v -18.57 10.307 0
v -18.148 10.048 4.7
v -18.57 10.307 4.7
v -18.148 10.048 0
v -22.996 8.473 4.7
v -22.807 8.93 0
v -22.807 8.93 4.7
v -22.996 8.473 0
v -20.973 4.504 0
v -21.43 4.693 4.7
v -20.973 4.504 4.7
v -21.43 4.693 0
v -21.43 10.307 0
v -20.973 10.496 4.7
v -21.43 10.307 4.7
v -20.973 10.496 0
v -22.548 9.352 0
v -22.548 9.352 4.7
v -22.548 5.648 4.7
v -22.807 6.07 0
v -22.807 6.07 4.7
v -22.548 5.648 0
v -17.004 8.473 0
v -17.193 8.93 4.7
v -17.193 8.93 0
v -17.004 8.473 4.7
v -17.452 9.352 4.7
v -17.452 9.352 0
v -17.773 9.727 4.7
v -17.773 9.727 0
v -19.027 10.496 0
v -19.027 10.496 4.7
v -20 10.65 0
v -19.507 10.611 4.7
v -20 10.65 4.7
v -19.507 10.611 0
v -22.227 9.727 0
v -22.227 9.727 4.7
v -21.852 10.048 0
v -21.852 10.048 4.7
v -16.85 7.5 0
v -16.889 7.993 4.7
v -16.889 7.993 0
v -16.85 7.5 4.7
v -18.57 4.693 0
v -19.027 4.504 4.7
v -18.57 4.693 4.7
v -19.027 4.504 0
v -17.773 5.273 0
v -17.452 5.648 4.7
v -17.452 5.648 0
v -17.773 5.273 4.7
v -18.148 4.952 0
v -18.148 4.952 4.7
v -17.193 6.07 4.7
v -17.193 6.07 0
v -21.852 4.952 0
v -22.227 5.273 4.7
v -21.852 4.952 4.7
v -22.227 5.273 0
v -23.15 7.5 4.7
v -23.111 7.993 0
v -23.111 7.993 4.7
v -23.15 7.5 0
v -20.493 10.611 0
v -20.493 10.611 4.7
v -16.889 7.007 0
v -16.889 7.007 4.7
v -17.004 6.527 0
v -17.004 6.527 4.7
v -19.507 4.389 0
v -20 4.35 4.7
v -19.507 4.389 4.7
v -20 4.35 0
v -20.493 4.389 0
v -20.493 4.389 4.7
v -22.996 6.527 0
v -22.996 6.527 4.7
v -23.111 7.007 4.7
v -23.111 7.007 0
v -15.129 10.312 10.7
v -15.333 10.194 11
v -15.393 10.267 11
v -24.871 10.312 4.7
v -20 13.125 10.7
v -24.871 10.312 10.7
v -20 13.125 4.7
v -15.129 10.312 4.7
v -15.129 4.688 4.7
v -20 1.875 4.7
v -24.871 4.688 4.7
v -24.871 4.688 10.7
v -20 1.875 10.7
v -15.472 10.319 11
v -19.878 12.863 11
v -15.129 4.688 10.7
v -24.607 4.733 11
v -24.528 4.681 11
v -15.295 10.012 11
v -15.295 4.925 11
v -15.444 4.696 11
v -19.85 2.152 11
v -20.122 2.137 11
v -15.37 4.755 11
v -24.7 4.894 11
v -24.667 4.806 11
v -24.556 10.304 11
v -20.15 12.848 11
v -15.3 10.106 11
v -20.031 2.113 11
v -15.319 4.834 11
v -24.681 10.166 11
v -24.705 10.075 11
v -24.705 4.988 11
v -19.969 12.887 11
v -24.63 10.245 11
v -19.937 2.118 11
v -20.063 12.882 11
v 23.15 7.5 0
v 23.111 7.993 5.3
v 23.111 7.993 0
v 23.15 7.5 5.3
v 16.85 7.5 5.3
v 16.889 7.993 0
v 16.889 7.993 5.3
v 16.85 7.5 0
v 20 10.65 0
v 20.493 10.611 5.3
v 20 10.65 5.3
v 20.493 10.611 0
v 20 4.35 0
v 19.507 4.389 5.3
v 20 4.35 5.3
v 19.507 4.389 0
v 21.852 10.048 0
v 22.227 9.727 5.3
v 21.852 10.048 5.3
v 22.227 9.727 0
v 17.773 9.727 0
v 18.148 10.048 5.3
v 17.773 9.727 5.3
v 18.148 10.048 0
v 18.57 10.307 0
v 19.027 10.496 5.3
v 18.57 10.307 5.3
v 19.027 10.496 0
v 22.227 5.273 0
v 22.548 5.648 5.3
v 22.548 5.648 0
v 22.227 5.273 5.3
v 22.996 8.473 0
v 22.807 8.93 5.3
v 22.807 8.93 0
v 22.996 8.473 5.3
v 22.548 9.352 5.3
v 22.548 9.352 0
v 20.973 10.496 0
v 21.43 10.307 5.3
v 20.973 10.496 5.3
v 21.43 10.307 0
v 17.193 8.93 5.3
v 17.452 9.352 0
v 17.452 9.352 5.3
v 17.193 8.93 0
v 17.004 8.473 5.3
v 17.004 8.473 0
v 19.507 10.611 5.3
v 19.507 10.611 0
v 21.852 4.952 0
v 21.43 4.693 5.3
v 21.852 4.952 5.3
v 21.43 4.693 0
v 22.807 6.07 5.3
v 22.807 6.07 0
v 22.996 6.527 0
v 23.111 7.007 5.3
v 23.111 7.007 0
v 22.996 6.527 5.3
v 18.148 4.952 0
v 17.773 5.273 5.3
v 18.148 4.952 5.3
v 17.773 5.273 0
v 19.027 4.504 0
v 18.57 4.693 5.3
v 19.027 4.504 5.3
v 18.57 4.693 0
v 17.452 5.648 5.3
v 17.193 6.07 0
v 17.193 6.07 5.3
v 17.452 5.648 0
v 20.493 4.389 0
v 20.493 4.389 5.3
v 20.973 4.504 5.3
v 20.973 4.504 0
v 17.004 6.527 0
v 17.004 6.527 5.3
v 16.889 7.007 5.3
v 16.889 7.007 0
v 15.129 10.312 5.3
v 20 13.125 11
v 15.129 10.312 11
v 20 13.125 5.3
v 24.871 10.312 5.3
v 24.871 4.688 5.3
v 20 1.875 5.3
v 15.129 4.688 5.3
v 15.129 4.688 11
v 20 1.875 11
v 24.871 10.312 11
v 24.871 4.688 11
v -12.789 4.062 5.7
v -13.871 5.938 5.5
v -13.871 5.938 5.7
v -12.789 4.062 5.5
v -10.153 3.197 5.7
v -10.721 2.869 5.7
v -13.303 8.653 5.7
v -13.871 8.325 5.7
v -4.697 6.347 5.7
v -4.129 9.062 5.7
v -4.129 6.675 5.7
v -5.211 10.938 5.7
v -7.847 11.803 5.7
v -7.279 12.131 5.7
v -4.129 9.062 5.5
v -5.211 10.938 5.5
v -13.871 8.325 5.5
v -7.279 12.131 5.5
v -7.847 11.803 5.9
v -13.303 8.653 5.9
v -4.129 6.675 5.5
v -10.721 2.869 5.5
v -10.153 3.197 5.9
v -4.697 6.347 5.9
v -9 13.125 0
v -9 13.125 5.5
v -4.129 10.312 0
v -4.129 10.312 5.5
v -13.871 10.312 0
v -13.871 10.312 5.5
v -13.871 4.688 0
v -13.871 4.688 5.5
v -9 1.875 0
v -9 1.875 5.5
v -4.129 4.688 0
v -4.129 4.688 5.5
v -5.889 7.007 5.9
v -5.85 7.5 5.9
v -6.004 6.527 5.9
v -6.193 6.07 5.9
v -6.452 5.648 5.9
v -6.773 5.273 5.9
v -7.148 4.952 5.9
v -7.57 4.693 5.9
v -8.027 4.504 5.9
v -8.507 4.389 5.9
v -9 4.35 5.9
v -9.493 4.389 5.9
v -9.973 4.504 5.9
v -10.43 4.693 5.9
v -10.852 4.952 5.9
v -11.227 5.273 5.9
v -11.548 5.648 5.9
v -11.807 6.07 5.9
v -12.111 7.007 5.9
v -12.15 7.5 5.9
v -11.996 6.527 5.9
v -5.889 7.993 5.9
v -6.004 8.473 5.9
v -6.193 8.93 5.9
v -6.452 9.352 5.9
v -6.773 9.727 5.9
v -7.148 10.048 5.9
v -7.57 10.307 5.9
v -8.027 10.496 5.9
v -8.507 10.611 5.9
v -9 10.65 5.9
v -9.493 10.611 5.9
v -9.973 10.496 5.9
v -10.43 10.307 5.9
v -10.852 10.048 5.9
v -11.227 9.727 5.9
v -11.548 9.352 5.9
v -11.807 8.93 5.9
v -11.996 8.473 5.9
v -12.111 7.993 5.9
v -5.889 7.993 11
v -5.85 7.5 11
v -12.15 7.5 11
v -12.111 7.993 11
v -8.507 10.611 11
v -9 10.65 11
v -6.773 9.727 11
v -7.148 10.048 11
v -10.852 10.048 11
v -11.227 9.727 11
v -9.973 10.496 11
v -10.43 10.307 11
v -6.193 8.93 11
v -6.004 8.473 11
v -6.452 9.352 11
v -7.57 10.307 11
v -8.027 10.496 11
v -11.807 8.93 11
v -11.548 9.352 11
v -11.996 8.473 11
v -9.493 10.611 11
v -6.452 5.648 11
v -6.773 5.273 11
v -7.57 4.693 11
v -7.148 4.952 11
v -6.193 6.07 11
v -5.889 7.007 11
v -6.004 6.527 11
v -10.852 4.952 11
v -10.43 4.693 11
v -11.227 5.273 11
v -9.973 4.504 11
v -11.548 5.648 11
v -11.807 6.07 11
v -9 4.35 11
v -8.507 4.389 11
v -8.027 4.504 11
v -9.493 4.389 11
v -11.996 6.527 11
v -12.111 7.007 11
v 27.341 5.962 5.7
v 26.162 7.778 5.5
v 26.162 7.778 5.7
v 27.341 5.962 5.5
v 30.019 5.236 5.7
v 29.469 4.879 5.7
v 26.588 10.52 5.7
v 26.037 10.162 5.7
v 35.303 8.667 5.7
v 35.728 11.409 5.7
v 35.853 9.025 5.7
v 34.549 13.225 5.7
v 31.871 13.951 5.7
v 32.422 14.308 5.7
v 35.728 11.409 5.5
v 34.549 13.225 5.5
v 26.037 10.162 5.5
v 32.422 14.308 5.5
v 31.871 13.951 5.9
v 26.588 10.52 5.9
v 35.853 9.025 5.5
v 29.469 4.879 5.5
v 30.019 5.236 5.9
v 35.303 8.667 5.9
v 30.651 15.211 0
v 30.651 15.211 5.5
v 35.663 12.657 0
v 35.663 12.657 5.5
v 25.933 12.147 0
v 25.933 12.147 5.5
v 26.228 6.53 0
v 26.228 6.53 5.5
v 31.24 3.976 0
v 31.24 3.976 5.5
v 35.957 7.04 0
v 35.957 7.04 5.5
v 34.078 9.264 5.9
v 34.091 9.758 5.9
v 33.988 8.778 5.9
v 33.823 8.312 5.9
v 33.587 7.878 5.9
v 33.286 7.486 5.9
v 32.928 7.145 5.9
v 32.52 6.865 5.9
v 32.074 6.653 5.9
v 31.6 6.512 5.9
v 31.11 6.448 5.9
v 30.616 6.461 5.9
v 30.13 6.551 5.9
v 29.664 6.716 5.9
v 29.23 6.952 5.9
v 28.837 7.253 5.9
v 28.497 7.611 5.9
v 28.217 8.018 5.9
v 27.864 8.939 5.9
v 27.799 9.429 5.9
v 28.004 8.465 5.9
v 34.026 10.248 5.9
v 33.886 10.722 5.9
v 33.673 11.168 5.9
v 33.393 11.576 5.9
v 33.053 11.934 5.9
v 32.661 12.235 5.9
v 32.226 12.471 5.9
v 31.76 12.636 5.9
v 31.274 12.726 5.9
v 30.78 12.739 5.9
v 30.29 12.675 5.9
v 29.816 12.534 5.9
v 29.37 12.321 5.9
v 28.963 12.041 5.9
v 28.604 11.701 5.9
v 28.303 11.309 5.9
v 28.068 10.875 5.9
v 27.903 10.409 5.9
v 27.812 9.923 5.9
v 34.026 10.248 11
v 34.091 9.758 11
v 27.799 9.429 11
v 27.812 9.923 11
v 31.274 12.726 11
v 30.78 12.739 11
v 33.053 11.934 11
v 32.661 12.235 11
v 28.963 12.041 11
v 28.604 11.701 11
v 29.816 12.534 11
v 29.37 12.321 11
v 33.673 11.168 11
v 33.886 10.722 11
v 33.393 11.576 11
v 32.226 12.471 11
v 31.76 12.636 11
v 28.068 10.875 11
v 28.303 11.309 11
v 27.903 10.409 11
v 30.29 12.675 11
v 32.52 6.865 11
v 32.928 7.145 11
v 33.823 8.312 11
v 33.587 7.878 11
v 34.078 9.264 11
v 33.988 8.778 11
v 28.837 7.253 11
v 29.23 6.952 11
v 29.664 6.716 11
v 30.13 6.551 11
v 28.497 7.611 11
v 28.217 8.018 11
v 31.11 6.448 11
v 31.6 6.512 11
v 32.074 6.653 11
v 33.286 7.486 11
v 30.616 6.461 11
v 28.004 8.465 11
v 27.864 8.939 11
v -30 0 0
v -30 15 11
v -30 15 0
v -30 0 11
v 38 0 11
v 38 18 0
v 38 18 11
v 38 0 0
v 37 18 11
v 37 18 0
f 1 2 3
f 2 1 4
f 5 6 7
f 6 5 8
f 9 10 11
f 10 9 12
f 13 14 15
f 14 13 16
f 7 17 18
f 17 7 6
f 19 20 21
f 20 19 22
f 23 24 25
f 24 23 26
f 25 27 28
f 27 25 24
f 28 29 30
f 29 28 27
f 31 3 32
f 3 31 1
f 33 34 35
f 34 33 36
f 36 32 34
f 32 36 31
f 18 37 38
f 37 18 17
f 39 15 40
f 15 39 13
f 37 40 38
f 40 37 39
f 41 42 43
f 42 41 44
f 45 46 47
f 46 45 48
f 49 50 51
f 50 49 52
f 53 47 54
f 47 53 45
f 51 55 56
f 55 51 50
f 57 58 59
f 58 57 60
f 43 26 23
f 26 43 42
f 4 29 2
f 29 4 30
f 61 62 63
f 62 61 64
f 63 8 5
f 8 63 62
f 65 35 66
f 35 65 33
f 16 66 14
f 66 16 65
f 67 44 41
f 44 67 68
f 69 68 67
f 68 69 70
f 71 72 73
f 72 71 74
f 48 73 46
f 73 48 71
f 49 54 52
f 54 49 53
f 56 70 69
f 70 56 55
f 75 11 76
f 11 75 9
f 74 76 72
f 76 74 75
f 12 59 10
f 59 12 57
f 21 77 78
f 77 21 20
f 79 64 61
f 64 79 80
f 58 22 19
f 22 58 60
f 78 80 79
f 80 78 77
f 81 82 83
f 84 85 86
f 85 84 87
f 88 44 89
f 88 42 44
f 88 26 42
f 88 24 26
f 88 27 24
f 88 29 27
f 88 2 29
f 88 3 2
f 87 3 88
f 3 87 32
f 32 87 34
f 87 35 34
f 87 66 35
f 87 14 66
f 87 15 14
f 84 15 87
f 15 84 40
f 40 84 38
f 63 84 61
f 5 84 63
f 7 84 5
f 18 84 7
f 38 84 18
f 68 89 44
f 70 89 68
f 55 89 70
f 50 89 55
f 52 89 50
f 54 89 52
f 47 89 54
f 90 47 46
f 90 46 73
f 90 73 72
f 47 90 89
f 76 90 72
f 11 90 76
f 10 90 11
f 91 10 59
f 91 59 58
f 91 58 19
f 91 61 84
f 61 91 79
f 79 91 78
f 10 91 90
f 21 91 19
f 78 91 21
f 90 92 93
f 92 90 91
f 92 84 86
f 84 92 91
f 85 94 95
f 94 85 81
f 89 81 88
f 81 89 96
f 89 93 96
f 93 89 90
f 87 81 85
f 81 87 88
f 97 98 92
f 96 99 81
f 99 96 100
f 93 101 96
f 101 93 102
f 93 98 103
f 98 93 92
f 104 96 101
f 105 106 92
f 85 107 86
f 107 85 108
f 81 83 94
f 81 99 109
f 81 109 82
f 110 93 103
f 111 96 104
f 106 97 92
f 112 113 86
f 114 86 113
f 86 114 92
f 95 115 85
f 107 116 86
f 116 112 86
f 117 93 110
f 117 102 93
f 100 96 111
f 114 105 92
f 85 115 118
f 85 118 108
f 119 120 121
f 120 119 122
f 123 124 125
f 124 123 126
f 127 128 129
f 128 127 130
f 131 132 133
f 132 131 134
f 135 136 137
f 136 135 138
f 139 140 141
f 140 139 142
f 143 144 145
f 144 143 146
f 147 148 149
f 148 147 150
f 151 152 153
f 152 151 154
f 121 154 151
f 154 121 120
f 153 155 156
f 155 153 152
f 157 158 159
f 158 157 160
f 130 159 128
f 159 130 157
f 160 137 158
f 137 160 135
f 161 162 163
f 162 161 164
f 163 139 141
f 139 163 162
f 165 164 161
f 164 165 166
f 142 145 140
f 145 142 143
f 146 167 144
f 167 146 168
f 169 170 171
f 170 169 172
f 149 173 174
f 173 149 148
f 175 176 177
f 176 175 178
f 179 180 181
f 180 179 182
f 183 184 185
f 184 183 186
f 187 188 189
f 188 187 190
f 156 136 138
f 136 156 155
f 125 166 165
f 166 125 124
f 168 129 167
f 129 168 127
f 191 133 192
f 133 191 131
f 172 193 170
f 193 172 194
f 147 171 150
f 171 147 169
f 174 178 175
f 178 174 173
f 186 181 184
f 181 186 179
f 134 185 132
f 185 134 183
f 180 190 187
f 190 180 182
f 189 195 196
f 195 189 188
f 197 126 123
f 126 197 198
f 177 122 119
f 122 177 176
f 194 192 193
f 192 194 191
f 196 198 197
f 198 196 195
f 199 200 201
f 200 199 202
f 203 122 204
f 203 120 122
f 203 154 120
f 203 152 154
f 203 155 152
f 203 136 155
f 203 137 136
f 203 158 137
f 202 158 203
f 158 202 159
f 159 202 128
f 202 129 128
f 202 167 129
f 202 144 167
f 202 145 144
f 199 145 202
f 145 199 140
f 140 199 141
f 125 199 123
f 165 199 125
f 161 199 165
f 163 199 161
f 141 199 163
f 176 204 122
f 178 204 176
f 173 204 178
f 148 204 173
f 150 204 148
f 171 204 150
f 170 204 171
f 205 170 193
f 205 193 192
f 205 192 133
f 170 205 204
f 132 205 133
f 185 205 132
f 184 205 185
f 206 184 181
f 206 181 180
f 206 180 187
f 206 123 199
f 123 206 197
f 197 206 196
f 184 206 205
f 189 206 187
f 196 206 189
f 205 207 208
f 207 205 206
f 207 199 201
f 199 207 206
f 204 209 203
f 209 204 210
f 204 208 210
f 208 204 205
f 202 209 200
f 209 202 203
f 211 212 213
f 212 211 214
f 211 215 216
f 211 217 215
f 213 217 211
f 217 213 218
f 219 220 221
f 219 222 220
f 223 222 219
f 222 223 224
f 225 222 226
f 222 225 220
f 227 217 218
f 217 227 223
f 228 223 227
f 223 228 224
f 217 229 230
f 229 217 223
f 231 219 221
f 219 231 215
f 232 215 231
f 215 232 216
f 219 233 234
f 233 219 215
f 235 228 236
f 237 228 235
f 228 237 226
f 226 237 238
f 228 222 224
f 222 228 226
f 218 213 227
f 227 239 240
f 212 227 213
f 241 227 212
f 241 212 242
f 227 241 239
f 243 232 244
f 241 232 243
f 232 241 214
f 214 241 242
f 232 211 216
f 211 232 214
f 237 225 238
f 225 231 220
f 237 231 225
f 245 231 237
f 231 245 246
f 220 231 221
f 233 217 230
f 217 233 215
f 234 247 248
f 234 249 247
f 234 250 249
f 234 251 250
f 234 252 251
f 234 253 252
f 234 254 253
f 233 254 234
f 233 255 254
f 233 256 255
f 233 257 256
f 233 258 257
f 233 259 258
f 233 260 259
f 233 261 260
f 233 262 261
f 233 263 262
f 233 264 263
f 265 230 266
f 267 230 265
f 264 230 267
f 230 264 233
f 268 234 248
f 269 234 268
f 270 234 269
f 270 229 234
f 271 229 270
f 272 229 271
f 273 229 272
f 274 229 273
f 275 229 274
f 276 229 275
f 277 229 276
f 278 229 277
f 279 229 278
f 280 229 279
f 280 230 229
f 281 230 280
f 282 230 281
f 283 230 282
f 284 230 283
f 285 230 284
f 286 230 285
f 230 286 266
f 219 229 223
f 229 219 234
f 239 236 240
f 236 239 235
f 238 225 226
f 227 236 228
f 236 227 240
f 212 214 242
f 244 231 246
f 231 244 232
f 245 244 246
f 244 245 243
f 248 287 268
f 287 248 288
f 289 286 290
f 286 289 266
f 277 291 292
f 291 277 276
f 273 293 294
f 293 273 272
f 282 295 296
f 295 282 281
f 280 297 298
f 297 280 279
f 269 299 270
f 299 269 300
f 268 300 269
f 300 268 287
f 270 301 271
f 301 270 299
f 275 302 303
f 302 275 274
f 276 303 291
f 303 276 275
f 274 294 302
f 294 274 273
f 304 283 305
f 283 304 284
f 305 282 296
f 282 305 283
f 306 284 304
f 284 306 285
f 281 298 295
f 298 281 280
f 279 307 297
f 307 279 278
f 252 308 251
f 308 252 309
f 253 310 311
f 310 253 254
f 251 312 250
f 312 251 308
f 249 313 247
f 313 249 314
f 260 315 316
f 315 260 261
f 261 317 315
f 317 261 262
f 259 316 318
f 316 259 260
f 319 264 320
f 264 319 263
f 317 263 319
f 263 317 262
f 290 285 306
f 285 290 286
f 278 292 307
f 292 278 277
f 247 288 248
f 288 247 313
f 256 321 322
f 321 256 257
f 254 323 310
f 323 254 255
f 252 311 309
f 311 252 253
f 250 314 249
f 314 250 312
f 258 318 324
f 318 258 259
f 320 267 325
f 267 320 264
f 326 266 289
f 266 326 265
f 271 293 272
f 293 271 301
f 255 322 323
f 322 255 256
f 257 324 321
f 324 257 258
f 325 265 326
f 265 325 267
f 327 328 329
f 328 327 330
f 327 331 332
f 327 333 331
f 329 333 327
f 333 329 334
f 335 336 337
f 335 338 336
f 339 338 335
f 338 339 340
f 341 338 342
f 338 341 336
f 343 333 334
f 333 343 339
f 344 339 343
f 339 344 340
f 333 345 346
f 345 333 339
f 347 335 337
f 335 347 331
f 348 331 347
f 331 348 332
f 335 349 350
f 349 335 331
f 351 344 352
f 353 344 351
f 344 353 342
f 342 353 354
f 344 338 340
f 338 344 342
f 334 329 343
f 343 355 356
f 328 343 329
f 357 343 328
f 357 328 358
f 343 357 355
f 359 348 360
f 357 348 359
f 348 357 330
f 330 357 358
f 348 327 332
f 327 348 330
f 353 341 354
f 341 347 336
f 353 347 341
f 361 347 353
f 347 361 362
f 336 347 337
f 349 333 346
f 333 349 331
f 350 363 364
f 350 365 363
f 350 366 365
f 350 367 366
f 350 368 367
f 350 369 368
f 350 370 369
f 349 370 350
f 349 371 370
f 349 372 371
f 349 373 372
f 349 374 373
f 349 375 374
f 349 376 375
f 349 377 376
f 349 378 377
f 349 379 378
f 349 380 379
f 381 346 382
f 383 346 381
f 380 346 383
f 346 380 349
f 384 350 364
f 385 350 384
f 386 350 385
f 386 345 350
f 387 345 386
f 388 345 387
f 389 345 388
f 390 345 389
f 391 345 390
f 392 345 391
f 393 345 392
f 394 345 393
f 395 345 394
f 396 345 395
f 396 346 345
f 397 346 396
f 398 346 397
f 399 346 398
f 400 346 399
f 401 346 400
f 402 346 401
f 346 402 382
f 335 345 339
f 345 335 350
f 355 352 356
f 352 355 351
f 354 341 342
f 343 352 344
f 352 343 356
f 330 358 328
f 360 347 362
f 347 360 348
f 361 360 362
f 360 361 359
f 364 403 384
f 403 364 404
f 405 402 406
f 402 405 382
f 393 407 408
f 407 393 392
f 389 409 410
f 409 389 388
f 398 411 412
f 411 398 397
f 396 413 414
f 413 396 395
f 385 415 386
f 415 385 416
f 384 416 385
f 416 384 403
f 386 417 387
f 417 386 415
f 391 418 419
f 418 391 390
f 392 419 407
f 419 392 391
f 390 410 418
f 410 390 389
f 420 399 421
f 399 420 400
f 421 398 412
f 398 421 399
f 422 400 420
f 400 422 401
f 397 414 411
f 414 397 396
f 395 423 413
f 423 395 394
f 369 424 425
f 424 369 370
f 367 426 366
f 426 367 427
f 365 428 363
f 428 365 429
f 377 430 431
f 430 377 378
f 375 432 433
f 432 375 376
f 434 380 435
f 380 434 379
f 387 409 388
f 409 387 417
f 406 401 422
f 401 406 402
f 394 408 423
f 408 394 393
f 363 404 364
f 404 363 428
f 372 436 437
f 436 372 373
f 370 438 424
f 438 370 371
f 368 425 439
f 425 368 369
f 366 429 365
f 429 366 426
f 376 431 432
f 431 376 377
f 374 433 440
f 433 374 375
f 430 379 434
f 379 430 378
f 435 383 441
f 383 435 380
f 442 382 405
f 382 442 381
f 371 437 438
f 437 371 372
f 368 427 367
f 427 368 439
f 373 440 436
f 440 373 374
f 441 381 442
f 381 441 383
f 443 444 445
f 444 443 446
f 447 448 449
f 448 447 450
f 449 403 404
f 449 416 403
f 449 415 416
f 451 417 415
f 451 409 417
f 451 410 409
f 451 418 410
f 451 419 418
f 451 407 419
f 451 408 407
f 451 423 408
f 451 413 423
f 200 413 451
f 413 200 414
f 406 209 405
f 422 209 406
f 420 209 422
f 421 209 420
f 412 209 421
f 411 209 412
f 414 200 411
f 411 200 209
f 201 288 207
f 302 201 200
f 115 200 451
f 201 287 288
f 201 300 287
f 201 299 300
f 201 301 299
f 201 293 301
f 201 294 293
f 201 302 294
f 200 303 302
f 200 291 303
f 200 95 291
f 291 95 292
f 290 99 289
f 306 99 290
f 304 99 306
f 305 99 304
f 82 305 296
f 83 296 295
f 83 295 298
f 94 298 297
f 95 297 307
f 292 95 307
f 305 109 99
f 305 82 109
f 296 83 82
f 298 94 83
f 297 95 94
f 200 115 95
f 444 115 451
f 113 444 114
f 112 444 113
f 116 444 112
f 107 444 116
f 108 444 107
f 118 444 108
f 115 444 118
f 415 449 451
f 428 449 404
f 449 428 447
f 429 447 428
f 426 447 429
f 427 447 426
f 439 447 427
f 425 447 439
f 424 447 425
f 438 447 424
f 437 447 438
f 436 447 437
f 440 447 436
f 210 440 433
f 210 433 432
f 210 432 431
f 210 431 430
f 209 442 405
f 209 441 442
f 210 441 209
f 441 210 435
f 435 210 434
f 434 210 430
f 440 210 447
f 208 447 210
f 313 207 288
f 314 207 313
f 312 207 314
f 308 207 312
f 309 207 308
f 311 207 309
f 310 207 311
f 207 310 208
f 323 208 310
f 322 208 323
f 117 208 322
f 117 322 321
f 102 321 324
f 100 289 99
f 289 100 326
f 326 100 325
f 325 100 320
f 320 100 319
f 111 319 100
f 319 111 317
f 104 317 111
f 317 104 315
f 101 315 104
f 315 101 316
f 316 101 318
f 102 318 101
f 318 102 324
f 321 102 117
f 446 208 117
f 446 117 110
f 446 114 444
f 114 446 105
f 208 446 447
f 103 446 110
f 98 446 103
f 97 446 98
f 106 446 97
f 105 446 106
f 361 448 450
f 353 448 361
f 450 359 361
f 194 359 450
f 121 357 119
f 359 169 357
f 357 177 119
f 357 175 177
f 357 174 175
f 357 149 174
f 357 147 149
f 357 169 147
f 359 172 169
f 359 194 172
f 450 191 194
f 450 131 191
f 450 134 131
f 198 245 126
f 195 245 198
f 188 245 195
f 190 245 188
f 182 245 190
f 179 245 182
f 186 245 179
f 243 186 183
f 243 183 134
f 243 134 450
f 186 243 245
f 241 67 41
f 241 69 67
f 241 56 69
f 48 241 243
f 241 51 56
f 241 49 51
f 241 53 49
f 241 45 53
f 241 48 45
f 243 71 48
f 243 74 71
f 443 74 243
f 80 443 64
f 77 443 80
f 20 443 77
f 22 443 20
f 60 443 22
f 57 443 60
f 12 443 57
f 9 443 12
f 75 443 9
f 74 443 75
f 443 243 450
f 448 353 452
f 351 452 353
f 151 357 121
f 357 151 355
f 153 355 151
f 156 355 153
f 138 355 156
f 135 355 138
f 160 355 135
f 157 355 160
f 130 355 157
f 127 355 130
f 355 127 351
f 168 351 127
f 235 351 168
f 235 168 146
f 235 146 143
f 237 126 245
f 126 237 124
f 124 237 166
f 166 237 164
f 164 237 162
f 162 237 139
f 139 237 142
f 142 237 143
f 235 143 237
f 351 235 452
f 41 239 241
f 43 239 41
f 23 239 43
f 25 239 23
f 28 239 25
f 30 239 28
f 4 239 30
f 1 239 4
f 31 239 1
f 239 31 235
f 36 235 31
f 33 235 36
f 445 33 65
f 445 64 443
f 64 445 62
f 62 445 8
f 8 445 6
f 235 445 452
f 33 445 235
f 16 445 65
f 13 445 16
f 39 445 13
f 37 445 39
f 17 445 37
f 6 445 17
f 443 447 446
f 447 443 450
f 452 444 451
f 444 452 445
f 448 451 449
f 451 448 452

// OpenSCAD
// file: ../Dollo/NEW_long_ties/globals.scad
/*
Most things in this file is represented as one millimeter, so keep that in mind while changing things.
Some of the setting are not mm but at variables that you can set, such as 2*x=2x and you are setting what x is.
I will try to specify when things are variables and not exact measurements.
*/

// printer slop
slop = 0.15;

obj_leg = 30;
leg_length = 5.5;
small_number = 0.001;
metal_core_rode_global = 5;


///////////////// number of holes /////////////////////
z_hole_number = 8;
other_holes = 8;

///////////////// Pins /////////////////////

//pins that poke out
ball_size = 10;
pin_height = 20;
pin_diameter = 6;


//holes
hole_ball_size = ball_size;
hole_pin_height = pin_height;
hole_pin_diameter = pin_diameter;

///////////////// Z THINGS /////////////////////

berring_slot_width = 7.5;
berring_slot_depth = 6.5;
metal_core_rode = 5;

///////////////// X THINGS /////////////////////

//male dove tails
male_dove_max_width=8;
male_dove_min_width=5;
male_dove_depth=5;
male_dove_height=obj_leg/2;

function scaled_male_dove_max_width() = male_dove_max_width - slop;
function scaled_male_dove_min_width() = male_dove_min_width - slop;
function scaled_male_dove_depth() = male_dove_depth - slop;

//female dove tails, this is found on the y mounts
girl_max_width=11;
girl_min_width=5;
girl_depth=5;
girl_height=obj_leg;


///////////////// Y THINGS /////////////////////
/*
The Y is so normal that all of those global variables at the top should change all of the setting in it, this section is set her incase there are variables set in the future development of this project.
*/

// stepper
motor_side_length = 43.2;
motor_bolt_hole_distance = 31;
motor_center_hole = 23;
motor_shaft_dia = 5;
motor_shaft_hole_dia = 5+2*slop;

// bolts etc.
bolt_hole_dia = 3+2*slop;
bolt_head_hole_dia = 5.8;

m4_bolt_hole_dia = 4+2*slop;
m4_bolt_head_hole_dia = 6.8+2*slop;


m3_nut_side = 5.65;
m3_nut_height = 2.3;
m4_nut_side = 6.85;
m4_nut_height = 3.1;

// threaded rod
lifter_rod_diam = 9.86;
hole_threaded_rod = lifter_rod_diam+2*slop;

// for the extensions
metal_rod_size = 9;
// main file
use <../Dollo/NEW_long_ties/include.scad>;

w = 60;

spacer();

module spacer() {
    difference() {
        hull() {
            translate([-w/2 + 1/2, 15/2, 11/2])
            cube([1, 15, 11], center=true);

            translate([w/2 - 1/2 + 8, 18/2, 11/2])
            cube([1, 18, 11], center=true);
        }

        // frame bolt holes
        translate([-(w - 20)/2, 15/2, 10 - 5.3]) {
            cylinder(d=6.3, h=30, center=true, $fn=40);

            rotate([0, 0, 30])
            M6_nut(6);
        }

        translate([(w - 20)/2, 15/2, 11 - 5.7]) {
            cylinder(d=6.3, h=30, center=true, $fn=40);

            rotate([0, 0, 30])
            M6_nut(6);
        }

        // stand bolt holes

        translate([-(w - 20)/2 + 11, 15/2, -1]) {
            cylinder(d=6.3, h=30, center=true, $fn=40);

            rotate([0, 0, 30])
            M6_nut(6.5, cone=false, bridging=true);
        }

        translate([-((w - 20)/2 - 11), 15/2, 0])
        rotate([0, 0, 3])
        translate([(w - 20)/2 - 11, -15/2, 0])
        translate([(w - 20)/2 + 11, 15/2, -1]) {
            cylinder(d=6.3, h=30, center=true, $fn=40);

            rotate([0, 0, 30])
            M6_nut(6.5, cone=false, bridging=true);
        }
    }
}
